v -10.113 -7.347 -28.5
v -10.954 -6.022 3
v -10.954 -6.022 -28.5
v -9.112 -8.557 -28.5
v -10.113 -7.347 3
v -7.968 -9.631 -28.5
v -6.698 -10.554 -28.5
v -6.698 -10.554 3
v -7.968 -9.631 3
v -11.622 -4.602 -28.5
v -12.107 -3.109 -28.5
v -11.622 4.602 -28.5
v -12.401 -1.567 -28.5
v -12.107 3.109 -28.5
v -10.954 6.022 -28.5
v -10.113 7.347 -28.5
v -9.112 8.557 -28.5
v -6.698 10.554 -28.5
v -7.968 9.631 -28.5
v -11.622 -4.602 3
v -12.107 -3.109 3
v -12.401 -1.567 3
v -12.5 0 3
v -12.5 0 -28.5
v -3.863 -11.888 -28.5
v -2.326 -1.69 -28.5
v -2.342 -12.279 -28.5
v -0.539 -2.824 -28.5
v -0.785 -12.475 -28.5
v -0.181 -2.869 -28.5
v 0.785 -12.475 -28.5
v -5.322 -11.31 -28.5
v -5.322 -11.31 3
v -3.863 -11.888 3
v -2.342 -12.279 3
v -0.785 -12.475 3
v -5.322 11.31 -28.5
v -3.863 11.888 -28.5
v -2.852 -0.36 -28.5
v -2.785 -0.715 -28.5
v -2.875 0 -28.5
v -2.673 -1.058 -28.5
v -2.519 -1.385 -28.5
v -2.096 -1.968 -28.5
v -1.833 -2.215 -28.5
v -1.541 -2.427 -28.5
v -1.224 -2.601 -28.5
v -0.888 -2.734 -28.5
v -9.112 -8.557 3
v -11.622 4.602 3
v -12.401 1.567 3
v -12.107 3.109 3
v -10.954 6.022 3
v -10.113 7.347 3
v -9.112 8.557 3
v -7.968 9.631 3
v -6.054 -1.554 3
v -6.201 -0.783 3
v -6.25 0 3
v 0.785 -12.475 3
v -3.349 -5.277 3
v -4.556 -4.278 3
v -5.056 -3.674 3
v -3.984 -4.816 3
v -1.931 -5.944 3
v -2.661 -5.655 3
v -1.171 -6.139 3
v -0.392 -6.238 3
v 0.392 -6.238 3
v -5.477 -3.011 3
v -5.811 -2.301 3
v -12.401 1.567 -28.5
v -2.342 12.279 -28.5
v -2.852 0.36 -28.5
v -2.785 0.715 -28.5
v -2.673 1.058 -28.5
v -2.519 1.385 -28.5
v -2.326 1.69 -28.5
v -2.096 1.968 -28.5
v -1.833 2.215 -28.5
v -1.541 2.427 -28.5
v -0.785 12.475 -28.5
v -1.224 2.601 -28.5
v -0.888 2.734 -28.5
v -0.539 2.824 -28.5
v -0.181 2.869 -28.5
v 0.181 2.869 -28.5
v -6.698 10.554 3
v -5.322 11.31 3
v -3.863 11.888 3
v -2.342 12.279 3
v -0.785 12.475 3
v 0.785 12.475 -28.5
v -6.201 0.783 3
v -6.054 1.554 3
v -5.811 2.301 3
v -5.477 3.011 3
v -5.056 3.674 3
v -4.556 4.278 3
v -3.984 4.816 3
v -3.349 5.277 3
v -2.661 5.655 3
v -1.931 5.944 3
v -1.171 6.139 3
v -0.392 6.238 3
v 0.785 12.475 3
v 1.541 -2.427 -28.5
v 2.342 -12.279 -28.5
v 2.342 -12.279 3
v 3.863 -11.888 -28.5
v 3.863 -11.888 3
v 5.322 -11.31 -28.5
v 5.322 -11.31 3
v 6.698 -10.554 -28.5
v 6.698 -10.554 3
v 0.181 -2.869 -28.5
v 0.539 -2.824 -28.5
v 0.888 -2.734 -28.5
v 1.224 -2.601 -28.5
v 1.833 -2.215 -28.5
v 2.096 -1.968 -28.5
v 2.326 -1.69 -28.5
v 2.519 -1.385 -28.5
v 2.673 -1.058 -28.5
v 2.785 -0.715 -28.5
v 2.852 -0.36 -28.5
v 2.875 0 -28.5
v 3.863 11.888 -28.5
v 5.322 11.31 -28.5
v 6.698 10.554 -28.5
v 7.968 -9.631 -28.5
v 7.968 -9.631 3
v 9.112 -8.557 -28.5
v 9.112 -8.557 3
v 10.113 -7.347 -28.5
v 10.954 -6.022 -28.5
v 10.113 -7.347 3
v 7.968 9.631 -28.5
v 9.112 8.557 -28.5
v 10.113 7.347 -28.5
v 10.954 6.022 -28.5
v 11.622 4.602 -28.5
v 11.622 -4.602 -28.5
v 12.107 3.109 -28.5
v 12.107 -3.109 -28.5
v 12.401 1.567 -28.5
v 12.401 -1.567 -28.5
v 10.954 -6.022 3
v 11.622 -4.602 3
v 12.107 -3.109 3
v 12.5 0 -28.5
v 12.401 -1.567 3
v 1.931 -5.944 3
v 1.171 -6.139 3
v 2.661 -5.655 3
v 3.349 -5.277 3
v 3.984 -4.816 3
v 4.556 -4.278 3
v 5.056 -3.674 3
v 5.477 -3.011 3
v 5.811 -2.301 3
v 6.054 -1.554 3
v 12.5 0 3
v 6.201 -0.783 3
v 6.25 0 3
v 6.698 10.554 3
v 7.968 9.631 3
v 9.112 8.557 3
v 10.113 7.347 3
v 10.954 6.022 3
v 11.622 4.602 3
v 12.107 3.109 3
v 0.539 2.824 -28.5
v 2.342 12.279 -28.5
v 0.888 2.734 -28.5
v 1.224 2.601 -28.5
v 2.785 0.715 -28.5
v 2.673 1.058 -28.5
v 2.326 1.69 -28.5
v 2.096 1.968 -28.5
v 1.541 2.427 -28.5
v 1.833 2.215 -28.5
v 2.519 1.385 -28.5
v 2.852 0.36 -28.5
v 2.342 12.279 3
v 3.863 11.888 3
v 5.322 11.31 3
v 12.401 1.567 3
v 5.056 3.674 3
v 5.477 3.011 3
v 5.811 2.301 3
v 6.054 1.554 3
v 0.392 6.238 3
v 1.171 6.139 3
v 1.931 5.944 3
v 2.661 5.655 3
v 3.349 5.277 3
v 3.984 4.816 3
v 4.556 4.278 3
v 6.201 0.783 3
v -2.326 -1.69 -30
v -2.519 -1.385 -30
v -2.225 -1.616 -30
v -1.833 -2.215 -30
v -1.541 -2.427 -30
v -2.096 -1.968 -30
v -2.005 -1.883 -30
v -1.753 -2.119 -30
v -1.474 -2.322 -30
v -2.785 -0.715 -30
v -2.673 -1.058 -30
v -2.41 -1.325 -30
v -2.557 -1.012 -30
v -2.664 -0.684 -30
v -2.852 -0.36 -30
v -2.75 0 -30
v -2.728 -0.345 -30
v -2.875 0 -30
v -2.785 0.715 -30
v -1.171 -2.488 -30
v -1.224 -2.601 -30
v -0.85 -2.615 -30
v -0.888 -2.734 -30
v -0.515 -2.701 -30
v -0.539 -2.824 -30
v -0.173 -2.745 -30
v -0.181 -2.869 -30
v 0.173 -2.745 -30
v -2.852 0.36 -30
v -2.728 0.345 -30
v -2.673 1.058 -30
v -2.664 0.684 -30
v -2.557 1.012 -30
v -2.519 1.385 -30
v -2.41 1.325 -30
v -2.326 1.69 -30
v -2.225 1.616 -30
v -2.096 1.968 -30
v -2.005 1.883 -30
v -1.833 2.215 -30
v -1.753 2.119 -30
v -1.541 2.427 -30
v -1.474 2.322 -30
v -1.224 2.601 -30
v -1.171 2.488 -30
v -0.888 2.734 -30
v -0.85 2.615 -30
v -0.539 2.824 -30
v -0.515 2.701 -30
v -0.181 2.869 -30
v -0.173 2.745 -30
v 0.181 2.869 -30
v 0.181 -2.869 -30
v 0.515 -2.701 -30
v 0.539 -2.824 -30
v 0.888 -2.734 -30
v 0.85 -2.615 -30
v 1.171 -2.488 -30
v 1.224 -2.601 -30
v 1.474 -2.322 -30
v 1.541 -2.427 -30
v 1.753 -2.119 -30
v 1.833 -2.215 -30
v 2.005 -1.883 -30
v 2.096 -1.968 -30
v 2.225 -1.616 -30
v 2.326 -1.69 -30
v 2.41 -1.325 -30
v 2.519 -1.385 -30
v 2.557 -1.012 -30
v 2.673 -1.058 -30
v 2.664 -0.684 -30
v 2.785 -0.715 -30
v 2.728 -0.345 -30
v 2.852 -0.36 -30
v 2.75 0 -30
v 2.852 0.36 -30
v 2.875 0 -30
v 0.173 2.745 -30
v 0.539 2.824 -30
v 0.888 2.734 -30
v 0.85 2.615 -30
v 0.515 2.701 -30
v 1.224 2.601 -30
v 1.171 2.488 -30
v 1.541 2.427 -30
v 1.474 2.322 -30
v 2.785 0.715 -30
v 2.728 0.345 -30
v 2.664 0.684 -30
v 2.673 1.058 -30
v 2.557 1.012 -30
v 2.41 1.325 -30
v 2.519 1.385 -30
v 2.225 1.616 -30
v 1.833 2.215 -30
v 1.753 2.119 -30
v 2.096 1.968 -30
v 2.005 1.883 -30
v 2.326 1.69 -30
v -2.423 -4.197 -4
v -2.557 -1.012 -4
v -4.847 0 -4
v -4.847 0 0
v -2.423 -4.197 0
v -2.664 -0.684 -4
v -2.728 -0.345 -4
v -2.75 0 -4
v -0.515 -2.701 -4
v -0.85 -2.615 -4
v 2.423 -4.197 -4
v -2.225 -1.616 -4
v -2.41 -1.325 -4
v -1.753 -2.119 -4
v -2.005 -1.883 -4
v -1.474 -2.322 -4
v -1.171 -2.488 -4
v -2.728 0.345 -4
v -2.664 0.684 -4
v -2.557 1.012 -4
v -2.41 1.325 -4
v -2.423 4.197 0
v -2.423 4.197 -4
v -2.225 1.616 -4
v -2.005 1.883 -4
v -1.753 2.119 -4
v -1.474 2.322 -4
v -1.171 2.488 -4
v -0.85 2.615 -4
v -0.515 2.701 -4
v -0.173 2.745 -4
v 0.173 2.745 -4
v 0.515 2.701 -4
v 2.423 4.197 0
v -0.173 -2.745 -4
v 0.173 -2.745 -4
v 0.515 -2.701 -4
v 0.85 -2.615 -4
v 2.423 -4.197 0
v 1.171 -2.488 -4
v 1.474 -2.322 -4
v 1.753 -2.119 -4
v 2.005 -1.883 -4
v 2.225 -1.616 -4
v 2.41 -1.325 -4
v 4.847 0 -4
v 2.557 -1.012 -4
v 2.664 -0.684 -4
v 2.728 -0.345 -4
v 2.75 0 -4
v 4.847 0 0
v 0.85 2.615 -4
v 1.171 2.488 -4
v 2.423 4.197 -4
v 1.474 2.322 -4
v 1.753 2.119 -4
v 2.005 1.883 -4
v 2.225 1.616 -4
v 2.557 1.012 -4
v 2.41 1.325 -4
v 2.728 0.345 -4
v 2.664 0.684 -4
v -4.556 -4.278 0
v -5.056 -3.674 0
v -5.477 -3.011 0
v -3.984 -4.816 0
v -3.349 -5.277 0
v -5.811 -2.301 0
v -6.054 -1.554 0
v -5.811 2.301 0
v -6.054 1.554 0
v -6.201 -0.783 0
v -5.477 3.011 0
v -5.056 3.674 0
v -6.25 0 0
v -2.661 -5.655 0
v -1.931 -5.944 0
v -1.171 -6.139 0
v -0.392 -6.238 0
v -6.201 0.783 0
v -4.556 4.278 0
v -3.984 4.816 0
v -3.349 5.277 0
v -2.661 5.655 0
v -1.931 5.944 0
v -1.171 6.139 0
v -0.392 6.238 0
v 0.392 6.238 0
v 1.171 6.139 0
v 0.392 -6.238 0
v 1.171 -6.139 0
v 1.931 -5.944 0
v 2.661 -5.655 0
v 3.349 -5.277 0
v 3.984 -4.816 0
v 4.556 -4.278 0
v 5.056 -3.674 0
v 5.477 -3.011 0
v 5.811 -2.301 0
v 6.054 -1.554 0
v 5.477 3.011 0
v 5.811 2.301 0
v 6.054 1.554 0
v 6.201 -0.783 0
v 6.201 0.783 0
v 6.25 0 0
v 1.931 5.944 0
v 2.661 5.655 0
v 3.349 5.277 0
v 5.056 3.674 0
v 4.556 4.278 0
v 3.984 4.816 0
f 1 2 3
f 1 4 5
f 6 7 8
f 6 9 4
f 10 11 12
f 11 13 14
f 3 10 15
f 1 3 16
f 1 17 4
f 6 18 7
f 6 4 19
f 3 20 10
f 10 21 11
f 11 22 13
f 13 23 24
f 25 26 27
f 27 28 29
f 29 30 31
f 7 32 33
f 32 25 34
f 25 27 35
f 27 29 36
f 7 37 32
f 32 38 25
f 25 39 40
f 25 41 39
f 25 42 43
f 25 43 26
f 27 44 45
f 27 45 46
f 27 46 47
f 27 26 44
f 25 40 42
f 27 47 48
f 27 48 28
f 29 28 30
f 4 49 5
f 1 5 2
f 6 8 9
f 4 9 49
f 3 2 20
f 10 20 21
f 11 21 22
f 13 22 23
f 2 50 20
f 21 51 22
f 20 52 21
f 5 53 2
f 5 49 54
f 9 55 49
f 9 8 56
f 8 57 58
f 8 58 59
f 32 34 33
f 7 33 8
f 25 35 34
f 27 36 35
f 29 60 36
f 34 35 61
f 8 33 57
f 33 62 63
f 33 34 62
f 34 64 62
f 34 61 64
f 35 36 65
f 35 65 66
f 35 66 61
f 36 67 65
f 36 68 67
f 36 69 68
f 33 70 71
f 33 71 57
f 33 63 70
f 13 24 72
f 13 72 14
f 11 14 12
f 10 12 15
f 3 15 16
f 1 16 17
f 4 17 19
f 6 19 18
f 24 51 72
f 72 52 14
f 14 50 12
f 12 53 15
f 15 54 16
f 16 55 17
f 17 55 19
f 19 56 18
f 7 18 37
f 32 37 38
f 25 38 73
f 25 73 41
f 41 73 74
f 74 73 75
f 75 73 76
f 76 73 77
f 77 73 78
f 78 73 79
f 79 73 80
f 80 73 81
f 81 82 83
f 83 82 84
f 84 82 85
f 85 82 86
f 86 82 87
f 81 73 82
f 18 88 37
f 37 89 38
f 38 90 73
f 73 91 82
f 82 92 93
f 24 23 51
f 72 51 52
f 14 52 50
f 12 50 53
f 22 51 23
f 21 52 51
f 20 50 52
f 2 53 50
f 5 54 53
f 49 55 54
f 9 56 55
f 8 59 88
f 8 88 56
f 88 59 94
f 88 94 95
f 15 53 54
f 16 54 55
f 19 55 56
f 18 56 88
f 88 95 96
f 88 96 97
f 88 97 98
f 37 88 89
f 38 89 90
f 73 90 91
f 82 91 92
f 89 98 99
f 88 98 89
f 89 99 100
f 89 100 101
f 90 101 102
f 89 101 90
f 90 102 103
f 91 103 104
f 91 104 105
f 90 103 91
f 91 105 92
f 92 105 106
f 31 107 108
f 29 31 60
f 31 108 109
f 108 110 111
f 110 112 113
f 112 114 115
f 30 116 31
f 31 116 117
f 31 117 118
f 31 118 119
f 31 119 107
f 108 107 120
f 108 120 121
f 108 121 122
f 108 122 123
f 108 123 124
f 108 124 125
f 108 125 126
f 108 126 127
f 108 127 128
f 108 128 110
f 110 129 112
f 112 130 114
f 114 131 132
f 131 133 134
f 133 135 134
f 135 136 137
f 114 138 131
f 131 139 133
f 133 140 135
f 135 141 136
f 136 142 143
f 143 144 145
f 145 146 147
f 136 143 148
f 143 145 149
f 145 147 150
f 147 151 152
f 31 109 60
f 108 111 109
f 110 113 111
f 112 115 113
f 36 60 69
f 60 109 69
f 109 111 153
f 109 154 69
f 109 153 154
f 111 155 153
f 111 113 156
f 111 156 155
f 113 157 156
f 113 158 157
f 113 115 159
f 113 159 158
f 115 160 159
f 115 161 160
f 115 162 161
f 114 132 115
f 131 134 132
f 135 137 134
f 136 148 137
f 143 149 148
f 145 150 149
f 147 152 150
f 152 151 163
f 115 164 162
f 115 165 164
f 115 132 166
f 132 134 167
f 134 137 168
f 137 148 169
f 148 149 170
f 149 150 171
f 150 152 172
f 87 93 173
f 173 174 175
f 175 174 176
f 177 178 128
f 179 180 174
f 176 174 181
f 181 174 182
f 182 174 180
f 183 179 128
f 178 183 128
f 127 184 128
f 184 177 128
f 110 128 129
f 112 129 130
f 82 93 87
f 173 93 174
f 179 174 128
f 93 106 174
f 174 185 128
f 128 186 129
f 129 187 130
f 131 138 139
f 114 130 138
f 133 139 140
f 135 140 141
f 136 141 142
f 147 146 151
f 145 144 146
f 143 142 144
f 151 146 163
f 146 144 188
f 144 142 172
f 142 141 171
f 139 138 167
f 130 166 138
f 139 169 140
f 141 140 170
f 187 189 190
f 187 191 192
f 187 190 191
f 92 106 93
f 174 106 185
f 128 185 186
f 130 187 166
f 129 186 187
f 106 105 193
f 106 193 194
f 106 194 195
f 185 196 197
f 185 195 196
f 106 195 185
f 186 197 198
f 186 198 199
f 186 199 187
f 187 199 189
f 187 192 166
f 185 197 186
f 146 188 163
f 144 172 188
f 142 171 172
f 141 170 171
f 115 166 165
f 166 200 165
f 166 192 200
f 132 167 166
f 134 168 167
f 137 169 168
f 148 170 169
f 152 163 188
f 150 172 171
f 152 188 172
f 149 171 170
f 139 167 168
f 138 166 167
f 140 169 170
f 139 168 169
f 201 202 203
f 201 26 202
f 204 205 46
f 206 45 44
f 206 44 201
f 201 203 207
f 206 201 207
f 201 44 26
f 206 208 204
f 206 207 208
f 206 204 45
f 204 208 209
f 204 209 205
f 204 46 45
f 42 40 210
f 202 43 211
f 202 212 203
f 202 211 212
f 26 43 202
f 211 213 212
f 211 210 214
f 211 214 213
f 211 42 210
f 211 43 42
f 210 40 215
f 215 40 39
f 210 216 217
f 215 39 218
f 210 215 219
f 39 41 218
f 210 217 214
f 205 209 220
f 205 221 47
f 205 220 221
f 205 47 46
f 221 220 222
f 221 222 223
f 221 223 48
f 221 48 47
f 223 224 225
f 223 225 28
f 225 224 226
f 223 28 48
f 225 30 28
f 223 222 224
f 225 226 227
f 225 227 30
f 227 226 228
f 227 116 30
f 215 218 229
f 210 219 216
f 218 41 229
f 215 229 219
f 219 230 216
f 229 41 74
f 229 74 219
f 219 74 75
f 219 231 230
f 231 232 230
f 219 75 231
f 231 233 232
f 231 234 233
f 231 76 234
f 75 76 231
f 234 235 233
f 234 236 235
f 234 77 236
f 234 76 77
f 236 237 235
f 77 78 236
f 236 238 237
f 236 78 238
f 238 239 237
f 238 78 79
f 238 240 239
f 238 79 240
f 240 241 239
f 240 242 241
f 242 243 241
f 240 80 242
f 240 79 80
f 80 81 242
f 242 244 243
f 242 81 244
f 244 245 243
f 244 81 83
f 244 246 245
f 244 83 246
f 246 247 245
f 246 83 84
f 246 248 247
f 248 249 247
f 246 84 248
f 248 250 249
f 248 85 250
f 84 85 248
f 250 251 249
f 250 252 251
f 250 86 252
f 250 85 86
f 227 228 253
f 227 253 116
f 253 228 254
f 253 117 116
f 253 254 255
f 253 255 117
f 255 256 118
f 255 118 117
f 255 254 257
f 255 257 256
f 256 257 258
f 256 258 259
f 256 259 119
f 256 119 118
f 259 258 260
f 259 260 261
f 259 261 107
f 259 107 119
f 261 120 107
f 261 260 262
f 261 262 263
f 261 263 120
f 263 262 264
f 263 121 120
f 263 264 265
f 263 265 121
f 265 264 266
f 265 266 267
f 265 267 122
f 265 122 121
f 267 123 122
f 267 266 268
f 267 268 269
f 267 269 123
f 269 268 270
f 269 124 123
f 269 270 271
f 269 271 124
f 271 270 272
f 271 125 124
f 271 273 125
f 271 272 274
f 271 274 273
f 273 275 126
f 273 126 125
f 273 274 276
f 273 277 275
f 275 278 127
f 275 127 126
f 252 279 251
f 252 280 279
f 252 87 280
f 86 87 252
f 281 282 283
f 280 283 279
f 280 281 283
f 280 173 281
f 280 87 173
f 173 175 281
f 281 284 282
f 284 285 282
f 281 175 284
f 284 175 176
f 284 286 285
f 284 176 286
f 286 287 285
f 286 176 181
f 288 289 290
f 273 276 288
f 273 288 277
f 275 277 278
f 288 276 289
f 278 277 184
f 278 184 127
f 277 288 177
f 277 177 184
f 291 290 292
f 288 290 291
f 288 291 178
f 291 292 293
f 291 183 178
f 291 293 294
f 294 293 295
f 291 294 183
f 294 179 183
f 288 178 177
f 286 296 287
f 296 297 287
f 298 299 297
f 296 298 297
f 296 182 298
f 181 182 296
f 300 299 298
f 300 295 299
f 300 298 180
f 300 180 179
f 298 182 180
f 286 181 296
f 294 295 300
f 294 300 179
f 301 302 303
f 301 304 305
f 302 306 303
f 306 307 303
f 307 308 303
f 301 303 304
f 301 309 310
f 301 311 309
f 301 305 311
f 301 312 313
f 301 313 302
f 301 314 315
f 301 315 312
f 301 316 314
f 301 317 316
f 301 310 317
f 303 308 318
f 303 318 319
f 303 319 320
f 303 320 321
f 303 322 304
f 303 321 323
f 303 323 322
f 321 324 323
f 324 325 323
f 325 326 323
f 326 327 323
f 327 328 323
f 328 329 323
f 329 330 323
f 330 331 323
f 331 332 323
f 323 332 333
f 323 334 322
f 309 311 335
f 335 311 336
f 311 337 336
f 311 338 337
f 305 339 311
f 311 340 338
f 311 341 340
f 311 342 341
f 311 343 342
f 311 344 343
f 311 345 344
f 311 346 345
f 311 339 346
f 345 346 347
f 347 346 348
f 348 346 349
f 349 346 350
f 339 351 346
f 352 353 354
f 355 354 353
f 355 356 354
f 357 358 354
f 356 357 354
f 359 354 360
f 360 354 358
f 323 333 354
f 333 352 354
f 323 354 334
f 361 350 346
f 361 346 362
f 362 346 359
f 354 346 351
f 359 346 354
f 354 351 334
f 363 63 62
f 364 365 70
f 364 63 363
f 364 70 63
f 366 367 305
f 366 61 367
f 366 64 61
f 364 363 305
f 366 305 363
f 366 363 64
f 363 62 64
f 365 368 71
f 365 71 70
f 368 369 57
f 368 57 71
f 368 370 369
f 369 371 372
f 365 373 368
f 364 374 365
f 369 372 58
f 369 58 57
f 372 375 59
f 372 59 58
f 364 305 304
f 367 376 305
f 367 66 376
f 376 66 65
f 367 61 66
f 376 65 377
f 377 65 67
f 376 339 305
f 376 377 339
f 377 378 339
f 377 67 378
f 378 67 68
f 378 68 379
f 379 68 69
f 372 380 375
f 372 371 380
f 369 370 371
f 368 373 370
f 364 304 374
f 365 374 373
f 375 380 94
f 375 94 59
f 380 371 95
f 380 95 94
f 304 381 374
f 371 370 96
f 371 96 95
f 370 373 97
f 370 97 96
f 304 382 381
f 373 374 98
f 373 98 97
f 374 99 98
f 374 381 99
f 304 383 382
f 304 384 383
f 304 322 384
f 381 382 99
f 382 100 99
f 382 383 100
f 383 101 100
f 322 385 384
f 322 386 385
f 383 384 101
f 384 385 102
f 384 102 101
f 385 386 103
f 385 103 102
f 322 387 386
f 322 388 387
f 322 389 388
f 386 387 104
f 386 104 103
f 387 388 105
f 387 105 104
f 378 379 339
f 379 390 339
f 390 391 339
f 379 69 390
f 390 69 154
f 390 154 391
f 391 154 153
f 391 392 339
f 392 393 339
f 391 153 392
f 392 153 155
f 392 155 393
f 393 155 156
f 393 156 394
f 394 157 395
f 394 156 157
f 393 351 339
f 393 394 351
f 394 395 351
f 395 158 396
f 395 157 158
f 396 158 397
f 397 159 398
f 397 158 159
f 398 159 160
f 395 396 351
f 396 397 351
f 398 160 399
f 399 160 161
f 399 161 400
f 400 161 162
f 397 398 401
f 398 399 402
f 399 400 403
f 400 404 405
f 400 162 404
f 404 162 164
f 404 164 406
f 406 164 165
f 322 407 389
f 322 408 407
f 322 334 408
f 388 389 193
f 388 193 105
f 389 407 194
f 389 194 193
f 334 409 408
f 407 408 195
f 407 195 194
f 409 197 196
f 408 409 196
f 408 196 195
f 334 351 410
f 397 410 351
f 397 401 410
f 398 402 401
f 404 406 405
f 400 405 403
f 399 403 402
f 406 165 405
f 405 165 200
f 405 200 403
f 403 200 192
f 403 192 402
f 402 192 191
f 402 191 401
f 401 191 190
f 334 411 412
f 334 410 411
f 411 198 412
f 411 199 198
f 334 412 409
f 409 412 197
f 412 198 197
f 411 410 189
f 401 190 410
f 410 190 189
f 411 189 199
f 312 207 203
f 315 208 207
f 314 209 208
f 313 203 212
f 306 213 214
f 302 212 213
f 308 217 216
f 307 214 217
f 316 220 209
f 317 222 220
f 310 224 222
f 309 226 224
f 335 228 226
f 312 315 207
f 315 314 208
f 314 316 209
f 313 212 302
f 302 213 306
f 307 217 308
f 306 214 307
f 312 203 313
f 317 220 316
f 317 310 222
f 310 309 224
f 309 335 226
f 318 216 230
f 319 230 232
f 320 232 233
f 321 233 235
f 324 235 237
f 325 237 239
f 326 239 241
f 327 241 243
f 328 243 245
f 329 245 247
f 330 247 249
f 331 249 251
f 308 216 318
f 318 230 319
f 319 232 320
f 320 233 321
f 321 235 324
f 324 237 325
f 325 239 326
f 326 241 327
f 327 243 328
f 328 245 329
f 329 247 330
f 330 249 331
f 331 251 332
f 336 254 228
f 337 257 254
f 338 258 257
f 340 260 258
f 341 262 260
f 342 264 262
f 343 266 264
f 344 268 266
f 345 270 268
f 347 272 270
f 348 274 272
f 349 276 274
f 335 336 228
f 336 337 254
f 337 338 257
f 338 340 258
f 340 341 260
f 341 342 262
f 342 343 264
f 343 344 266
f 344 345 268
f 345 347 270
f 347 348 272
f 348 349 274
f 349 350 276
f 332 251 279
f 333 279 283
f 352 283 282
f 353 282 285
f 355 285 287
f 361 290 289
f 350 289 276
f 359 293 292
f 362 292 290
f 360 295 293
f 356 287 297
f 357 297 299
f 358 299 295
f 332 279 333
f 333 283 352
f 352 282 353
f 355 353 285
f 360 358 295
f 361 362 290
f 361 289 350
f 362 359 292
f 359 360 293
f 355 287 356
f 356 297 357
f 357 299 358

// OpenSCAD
$fn = 50;


difference() {
	union() {
		translate(v = [0, 0, -28.5000000000]) {
			cylinder(h = 31.5000000000, r = 12.5000000000);
		}
		#translate(v = [0, 0, -30.0000000000]) {
			cylinder(h = 30, r = 2.8750000000);
		}
	}
	union() {
		translate(v = [0, 0, 0]) {
			rotate(a = [0, 0, 0]) {
				difference() {
					union() {
						translate(v = [0, 0, -4]) {
							linear_extrude(height = 4) {
								polygon(points = [[4.8468000000, 0.0000000000], [2.4234000000, 4.1974519271], [-2.4234000000, 4.1974519271], [-4.8468000000, 0.0000000000], [-2.4234000000, -4.1974519271], [2.4234000000, -4.1974519271]]);
							}
						}
					}
					union();
				}
			}
		}
		#cylinder(h = 3, r = 6.2500000000);
		#translate(v = [0, 0, -100.0000000000]) {
			cylinder(h = 200, r = 2.7500000000);
		}
	}
}
